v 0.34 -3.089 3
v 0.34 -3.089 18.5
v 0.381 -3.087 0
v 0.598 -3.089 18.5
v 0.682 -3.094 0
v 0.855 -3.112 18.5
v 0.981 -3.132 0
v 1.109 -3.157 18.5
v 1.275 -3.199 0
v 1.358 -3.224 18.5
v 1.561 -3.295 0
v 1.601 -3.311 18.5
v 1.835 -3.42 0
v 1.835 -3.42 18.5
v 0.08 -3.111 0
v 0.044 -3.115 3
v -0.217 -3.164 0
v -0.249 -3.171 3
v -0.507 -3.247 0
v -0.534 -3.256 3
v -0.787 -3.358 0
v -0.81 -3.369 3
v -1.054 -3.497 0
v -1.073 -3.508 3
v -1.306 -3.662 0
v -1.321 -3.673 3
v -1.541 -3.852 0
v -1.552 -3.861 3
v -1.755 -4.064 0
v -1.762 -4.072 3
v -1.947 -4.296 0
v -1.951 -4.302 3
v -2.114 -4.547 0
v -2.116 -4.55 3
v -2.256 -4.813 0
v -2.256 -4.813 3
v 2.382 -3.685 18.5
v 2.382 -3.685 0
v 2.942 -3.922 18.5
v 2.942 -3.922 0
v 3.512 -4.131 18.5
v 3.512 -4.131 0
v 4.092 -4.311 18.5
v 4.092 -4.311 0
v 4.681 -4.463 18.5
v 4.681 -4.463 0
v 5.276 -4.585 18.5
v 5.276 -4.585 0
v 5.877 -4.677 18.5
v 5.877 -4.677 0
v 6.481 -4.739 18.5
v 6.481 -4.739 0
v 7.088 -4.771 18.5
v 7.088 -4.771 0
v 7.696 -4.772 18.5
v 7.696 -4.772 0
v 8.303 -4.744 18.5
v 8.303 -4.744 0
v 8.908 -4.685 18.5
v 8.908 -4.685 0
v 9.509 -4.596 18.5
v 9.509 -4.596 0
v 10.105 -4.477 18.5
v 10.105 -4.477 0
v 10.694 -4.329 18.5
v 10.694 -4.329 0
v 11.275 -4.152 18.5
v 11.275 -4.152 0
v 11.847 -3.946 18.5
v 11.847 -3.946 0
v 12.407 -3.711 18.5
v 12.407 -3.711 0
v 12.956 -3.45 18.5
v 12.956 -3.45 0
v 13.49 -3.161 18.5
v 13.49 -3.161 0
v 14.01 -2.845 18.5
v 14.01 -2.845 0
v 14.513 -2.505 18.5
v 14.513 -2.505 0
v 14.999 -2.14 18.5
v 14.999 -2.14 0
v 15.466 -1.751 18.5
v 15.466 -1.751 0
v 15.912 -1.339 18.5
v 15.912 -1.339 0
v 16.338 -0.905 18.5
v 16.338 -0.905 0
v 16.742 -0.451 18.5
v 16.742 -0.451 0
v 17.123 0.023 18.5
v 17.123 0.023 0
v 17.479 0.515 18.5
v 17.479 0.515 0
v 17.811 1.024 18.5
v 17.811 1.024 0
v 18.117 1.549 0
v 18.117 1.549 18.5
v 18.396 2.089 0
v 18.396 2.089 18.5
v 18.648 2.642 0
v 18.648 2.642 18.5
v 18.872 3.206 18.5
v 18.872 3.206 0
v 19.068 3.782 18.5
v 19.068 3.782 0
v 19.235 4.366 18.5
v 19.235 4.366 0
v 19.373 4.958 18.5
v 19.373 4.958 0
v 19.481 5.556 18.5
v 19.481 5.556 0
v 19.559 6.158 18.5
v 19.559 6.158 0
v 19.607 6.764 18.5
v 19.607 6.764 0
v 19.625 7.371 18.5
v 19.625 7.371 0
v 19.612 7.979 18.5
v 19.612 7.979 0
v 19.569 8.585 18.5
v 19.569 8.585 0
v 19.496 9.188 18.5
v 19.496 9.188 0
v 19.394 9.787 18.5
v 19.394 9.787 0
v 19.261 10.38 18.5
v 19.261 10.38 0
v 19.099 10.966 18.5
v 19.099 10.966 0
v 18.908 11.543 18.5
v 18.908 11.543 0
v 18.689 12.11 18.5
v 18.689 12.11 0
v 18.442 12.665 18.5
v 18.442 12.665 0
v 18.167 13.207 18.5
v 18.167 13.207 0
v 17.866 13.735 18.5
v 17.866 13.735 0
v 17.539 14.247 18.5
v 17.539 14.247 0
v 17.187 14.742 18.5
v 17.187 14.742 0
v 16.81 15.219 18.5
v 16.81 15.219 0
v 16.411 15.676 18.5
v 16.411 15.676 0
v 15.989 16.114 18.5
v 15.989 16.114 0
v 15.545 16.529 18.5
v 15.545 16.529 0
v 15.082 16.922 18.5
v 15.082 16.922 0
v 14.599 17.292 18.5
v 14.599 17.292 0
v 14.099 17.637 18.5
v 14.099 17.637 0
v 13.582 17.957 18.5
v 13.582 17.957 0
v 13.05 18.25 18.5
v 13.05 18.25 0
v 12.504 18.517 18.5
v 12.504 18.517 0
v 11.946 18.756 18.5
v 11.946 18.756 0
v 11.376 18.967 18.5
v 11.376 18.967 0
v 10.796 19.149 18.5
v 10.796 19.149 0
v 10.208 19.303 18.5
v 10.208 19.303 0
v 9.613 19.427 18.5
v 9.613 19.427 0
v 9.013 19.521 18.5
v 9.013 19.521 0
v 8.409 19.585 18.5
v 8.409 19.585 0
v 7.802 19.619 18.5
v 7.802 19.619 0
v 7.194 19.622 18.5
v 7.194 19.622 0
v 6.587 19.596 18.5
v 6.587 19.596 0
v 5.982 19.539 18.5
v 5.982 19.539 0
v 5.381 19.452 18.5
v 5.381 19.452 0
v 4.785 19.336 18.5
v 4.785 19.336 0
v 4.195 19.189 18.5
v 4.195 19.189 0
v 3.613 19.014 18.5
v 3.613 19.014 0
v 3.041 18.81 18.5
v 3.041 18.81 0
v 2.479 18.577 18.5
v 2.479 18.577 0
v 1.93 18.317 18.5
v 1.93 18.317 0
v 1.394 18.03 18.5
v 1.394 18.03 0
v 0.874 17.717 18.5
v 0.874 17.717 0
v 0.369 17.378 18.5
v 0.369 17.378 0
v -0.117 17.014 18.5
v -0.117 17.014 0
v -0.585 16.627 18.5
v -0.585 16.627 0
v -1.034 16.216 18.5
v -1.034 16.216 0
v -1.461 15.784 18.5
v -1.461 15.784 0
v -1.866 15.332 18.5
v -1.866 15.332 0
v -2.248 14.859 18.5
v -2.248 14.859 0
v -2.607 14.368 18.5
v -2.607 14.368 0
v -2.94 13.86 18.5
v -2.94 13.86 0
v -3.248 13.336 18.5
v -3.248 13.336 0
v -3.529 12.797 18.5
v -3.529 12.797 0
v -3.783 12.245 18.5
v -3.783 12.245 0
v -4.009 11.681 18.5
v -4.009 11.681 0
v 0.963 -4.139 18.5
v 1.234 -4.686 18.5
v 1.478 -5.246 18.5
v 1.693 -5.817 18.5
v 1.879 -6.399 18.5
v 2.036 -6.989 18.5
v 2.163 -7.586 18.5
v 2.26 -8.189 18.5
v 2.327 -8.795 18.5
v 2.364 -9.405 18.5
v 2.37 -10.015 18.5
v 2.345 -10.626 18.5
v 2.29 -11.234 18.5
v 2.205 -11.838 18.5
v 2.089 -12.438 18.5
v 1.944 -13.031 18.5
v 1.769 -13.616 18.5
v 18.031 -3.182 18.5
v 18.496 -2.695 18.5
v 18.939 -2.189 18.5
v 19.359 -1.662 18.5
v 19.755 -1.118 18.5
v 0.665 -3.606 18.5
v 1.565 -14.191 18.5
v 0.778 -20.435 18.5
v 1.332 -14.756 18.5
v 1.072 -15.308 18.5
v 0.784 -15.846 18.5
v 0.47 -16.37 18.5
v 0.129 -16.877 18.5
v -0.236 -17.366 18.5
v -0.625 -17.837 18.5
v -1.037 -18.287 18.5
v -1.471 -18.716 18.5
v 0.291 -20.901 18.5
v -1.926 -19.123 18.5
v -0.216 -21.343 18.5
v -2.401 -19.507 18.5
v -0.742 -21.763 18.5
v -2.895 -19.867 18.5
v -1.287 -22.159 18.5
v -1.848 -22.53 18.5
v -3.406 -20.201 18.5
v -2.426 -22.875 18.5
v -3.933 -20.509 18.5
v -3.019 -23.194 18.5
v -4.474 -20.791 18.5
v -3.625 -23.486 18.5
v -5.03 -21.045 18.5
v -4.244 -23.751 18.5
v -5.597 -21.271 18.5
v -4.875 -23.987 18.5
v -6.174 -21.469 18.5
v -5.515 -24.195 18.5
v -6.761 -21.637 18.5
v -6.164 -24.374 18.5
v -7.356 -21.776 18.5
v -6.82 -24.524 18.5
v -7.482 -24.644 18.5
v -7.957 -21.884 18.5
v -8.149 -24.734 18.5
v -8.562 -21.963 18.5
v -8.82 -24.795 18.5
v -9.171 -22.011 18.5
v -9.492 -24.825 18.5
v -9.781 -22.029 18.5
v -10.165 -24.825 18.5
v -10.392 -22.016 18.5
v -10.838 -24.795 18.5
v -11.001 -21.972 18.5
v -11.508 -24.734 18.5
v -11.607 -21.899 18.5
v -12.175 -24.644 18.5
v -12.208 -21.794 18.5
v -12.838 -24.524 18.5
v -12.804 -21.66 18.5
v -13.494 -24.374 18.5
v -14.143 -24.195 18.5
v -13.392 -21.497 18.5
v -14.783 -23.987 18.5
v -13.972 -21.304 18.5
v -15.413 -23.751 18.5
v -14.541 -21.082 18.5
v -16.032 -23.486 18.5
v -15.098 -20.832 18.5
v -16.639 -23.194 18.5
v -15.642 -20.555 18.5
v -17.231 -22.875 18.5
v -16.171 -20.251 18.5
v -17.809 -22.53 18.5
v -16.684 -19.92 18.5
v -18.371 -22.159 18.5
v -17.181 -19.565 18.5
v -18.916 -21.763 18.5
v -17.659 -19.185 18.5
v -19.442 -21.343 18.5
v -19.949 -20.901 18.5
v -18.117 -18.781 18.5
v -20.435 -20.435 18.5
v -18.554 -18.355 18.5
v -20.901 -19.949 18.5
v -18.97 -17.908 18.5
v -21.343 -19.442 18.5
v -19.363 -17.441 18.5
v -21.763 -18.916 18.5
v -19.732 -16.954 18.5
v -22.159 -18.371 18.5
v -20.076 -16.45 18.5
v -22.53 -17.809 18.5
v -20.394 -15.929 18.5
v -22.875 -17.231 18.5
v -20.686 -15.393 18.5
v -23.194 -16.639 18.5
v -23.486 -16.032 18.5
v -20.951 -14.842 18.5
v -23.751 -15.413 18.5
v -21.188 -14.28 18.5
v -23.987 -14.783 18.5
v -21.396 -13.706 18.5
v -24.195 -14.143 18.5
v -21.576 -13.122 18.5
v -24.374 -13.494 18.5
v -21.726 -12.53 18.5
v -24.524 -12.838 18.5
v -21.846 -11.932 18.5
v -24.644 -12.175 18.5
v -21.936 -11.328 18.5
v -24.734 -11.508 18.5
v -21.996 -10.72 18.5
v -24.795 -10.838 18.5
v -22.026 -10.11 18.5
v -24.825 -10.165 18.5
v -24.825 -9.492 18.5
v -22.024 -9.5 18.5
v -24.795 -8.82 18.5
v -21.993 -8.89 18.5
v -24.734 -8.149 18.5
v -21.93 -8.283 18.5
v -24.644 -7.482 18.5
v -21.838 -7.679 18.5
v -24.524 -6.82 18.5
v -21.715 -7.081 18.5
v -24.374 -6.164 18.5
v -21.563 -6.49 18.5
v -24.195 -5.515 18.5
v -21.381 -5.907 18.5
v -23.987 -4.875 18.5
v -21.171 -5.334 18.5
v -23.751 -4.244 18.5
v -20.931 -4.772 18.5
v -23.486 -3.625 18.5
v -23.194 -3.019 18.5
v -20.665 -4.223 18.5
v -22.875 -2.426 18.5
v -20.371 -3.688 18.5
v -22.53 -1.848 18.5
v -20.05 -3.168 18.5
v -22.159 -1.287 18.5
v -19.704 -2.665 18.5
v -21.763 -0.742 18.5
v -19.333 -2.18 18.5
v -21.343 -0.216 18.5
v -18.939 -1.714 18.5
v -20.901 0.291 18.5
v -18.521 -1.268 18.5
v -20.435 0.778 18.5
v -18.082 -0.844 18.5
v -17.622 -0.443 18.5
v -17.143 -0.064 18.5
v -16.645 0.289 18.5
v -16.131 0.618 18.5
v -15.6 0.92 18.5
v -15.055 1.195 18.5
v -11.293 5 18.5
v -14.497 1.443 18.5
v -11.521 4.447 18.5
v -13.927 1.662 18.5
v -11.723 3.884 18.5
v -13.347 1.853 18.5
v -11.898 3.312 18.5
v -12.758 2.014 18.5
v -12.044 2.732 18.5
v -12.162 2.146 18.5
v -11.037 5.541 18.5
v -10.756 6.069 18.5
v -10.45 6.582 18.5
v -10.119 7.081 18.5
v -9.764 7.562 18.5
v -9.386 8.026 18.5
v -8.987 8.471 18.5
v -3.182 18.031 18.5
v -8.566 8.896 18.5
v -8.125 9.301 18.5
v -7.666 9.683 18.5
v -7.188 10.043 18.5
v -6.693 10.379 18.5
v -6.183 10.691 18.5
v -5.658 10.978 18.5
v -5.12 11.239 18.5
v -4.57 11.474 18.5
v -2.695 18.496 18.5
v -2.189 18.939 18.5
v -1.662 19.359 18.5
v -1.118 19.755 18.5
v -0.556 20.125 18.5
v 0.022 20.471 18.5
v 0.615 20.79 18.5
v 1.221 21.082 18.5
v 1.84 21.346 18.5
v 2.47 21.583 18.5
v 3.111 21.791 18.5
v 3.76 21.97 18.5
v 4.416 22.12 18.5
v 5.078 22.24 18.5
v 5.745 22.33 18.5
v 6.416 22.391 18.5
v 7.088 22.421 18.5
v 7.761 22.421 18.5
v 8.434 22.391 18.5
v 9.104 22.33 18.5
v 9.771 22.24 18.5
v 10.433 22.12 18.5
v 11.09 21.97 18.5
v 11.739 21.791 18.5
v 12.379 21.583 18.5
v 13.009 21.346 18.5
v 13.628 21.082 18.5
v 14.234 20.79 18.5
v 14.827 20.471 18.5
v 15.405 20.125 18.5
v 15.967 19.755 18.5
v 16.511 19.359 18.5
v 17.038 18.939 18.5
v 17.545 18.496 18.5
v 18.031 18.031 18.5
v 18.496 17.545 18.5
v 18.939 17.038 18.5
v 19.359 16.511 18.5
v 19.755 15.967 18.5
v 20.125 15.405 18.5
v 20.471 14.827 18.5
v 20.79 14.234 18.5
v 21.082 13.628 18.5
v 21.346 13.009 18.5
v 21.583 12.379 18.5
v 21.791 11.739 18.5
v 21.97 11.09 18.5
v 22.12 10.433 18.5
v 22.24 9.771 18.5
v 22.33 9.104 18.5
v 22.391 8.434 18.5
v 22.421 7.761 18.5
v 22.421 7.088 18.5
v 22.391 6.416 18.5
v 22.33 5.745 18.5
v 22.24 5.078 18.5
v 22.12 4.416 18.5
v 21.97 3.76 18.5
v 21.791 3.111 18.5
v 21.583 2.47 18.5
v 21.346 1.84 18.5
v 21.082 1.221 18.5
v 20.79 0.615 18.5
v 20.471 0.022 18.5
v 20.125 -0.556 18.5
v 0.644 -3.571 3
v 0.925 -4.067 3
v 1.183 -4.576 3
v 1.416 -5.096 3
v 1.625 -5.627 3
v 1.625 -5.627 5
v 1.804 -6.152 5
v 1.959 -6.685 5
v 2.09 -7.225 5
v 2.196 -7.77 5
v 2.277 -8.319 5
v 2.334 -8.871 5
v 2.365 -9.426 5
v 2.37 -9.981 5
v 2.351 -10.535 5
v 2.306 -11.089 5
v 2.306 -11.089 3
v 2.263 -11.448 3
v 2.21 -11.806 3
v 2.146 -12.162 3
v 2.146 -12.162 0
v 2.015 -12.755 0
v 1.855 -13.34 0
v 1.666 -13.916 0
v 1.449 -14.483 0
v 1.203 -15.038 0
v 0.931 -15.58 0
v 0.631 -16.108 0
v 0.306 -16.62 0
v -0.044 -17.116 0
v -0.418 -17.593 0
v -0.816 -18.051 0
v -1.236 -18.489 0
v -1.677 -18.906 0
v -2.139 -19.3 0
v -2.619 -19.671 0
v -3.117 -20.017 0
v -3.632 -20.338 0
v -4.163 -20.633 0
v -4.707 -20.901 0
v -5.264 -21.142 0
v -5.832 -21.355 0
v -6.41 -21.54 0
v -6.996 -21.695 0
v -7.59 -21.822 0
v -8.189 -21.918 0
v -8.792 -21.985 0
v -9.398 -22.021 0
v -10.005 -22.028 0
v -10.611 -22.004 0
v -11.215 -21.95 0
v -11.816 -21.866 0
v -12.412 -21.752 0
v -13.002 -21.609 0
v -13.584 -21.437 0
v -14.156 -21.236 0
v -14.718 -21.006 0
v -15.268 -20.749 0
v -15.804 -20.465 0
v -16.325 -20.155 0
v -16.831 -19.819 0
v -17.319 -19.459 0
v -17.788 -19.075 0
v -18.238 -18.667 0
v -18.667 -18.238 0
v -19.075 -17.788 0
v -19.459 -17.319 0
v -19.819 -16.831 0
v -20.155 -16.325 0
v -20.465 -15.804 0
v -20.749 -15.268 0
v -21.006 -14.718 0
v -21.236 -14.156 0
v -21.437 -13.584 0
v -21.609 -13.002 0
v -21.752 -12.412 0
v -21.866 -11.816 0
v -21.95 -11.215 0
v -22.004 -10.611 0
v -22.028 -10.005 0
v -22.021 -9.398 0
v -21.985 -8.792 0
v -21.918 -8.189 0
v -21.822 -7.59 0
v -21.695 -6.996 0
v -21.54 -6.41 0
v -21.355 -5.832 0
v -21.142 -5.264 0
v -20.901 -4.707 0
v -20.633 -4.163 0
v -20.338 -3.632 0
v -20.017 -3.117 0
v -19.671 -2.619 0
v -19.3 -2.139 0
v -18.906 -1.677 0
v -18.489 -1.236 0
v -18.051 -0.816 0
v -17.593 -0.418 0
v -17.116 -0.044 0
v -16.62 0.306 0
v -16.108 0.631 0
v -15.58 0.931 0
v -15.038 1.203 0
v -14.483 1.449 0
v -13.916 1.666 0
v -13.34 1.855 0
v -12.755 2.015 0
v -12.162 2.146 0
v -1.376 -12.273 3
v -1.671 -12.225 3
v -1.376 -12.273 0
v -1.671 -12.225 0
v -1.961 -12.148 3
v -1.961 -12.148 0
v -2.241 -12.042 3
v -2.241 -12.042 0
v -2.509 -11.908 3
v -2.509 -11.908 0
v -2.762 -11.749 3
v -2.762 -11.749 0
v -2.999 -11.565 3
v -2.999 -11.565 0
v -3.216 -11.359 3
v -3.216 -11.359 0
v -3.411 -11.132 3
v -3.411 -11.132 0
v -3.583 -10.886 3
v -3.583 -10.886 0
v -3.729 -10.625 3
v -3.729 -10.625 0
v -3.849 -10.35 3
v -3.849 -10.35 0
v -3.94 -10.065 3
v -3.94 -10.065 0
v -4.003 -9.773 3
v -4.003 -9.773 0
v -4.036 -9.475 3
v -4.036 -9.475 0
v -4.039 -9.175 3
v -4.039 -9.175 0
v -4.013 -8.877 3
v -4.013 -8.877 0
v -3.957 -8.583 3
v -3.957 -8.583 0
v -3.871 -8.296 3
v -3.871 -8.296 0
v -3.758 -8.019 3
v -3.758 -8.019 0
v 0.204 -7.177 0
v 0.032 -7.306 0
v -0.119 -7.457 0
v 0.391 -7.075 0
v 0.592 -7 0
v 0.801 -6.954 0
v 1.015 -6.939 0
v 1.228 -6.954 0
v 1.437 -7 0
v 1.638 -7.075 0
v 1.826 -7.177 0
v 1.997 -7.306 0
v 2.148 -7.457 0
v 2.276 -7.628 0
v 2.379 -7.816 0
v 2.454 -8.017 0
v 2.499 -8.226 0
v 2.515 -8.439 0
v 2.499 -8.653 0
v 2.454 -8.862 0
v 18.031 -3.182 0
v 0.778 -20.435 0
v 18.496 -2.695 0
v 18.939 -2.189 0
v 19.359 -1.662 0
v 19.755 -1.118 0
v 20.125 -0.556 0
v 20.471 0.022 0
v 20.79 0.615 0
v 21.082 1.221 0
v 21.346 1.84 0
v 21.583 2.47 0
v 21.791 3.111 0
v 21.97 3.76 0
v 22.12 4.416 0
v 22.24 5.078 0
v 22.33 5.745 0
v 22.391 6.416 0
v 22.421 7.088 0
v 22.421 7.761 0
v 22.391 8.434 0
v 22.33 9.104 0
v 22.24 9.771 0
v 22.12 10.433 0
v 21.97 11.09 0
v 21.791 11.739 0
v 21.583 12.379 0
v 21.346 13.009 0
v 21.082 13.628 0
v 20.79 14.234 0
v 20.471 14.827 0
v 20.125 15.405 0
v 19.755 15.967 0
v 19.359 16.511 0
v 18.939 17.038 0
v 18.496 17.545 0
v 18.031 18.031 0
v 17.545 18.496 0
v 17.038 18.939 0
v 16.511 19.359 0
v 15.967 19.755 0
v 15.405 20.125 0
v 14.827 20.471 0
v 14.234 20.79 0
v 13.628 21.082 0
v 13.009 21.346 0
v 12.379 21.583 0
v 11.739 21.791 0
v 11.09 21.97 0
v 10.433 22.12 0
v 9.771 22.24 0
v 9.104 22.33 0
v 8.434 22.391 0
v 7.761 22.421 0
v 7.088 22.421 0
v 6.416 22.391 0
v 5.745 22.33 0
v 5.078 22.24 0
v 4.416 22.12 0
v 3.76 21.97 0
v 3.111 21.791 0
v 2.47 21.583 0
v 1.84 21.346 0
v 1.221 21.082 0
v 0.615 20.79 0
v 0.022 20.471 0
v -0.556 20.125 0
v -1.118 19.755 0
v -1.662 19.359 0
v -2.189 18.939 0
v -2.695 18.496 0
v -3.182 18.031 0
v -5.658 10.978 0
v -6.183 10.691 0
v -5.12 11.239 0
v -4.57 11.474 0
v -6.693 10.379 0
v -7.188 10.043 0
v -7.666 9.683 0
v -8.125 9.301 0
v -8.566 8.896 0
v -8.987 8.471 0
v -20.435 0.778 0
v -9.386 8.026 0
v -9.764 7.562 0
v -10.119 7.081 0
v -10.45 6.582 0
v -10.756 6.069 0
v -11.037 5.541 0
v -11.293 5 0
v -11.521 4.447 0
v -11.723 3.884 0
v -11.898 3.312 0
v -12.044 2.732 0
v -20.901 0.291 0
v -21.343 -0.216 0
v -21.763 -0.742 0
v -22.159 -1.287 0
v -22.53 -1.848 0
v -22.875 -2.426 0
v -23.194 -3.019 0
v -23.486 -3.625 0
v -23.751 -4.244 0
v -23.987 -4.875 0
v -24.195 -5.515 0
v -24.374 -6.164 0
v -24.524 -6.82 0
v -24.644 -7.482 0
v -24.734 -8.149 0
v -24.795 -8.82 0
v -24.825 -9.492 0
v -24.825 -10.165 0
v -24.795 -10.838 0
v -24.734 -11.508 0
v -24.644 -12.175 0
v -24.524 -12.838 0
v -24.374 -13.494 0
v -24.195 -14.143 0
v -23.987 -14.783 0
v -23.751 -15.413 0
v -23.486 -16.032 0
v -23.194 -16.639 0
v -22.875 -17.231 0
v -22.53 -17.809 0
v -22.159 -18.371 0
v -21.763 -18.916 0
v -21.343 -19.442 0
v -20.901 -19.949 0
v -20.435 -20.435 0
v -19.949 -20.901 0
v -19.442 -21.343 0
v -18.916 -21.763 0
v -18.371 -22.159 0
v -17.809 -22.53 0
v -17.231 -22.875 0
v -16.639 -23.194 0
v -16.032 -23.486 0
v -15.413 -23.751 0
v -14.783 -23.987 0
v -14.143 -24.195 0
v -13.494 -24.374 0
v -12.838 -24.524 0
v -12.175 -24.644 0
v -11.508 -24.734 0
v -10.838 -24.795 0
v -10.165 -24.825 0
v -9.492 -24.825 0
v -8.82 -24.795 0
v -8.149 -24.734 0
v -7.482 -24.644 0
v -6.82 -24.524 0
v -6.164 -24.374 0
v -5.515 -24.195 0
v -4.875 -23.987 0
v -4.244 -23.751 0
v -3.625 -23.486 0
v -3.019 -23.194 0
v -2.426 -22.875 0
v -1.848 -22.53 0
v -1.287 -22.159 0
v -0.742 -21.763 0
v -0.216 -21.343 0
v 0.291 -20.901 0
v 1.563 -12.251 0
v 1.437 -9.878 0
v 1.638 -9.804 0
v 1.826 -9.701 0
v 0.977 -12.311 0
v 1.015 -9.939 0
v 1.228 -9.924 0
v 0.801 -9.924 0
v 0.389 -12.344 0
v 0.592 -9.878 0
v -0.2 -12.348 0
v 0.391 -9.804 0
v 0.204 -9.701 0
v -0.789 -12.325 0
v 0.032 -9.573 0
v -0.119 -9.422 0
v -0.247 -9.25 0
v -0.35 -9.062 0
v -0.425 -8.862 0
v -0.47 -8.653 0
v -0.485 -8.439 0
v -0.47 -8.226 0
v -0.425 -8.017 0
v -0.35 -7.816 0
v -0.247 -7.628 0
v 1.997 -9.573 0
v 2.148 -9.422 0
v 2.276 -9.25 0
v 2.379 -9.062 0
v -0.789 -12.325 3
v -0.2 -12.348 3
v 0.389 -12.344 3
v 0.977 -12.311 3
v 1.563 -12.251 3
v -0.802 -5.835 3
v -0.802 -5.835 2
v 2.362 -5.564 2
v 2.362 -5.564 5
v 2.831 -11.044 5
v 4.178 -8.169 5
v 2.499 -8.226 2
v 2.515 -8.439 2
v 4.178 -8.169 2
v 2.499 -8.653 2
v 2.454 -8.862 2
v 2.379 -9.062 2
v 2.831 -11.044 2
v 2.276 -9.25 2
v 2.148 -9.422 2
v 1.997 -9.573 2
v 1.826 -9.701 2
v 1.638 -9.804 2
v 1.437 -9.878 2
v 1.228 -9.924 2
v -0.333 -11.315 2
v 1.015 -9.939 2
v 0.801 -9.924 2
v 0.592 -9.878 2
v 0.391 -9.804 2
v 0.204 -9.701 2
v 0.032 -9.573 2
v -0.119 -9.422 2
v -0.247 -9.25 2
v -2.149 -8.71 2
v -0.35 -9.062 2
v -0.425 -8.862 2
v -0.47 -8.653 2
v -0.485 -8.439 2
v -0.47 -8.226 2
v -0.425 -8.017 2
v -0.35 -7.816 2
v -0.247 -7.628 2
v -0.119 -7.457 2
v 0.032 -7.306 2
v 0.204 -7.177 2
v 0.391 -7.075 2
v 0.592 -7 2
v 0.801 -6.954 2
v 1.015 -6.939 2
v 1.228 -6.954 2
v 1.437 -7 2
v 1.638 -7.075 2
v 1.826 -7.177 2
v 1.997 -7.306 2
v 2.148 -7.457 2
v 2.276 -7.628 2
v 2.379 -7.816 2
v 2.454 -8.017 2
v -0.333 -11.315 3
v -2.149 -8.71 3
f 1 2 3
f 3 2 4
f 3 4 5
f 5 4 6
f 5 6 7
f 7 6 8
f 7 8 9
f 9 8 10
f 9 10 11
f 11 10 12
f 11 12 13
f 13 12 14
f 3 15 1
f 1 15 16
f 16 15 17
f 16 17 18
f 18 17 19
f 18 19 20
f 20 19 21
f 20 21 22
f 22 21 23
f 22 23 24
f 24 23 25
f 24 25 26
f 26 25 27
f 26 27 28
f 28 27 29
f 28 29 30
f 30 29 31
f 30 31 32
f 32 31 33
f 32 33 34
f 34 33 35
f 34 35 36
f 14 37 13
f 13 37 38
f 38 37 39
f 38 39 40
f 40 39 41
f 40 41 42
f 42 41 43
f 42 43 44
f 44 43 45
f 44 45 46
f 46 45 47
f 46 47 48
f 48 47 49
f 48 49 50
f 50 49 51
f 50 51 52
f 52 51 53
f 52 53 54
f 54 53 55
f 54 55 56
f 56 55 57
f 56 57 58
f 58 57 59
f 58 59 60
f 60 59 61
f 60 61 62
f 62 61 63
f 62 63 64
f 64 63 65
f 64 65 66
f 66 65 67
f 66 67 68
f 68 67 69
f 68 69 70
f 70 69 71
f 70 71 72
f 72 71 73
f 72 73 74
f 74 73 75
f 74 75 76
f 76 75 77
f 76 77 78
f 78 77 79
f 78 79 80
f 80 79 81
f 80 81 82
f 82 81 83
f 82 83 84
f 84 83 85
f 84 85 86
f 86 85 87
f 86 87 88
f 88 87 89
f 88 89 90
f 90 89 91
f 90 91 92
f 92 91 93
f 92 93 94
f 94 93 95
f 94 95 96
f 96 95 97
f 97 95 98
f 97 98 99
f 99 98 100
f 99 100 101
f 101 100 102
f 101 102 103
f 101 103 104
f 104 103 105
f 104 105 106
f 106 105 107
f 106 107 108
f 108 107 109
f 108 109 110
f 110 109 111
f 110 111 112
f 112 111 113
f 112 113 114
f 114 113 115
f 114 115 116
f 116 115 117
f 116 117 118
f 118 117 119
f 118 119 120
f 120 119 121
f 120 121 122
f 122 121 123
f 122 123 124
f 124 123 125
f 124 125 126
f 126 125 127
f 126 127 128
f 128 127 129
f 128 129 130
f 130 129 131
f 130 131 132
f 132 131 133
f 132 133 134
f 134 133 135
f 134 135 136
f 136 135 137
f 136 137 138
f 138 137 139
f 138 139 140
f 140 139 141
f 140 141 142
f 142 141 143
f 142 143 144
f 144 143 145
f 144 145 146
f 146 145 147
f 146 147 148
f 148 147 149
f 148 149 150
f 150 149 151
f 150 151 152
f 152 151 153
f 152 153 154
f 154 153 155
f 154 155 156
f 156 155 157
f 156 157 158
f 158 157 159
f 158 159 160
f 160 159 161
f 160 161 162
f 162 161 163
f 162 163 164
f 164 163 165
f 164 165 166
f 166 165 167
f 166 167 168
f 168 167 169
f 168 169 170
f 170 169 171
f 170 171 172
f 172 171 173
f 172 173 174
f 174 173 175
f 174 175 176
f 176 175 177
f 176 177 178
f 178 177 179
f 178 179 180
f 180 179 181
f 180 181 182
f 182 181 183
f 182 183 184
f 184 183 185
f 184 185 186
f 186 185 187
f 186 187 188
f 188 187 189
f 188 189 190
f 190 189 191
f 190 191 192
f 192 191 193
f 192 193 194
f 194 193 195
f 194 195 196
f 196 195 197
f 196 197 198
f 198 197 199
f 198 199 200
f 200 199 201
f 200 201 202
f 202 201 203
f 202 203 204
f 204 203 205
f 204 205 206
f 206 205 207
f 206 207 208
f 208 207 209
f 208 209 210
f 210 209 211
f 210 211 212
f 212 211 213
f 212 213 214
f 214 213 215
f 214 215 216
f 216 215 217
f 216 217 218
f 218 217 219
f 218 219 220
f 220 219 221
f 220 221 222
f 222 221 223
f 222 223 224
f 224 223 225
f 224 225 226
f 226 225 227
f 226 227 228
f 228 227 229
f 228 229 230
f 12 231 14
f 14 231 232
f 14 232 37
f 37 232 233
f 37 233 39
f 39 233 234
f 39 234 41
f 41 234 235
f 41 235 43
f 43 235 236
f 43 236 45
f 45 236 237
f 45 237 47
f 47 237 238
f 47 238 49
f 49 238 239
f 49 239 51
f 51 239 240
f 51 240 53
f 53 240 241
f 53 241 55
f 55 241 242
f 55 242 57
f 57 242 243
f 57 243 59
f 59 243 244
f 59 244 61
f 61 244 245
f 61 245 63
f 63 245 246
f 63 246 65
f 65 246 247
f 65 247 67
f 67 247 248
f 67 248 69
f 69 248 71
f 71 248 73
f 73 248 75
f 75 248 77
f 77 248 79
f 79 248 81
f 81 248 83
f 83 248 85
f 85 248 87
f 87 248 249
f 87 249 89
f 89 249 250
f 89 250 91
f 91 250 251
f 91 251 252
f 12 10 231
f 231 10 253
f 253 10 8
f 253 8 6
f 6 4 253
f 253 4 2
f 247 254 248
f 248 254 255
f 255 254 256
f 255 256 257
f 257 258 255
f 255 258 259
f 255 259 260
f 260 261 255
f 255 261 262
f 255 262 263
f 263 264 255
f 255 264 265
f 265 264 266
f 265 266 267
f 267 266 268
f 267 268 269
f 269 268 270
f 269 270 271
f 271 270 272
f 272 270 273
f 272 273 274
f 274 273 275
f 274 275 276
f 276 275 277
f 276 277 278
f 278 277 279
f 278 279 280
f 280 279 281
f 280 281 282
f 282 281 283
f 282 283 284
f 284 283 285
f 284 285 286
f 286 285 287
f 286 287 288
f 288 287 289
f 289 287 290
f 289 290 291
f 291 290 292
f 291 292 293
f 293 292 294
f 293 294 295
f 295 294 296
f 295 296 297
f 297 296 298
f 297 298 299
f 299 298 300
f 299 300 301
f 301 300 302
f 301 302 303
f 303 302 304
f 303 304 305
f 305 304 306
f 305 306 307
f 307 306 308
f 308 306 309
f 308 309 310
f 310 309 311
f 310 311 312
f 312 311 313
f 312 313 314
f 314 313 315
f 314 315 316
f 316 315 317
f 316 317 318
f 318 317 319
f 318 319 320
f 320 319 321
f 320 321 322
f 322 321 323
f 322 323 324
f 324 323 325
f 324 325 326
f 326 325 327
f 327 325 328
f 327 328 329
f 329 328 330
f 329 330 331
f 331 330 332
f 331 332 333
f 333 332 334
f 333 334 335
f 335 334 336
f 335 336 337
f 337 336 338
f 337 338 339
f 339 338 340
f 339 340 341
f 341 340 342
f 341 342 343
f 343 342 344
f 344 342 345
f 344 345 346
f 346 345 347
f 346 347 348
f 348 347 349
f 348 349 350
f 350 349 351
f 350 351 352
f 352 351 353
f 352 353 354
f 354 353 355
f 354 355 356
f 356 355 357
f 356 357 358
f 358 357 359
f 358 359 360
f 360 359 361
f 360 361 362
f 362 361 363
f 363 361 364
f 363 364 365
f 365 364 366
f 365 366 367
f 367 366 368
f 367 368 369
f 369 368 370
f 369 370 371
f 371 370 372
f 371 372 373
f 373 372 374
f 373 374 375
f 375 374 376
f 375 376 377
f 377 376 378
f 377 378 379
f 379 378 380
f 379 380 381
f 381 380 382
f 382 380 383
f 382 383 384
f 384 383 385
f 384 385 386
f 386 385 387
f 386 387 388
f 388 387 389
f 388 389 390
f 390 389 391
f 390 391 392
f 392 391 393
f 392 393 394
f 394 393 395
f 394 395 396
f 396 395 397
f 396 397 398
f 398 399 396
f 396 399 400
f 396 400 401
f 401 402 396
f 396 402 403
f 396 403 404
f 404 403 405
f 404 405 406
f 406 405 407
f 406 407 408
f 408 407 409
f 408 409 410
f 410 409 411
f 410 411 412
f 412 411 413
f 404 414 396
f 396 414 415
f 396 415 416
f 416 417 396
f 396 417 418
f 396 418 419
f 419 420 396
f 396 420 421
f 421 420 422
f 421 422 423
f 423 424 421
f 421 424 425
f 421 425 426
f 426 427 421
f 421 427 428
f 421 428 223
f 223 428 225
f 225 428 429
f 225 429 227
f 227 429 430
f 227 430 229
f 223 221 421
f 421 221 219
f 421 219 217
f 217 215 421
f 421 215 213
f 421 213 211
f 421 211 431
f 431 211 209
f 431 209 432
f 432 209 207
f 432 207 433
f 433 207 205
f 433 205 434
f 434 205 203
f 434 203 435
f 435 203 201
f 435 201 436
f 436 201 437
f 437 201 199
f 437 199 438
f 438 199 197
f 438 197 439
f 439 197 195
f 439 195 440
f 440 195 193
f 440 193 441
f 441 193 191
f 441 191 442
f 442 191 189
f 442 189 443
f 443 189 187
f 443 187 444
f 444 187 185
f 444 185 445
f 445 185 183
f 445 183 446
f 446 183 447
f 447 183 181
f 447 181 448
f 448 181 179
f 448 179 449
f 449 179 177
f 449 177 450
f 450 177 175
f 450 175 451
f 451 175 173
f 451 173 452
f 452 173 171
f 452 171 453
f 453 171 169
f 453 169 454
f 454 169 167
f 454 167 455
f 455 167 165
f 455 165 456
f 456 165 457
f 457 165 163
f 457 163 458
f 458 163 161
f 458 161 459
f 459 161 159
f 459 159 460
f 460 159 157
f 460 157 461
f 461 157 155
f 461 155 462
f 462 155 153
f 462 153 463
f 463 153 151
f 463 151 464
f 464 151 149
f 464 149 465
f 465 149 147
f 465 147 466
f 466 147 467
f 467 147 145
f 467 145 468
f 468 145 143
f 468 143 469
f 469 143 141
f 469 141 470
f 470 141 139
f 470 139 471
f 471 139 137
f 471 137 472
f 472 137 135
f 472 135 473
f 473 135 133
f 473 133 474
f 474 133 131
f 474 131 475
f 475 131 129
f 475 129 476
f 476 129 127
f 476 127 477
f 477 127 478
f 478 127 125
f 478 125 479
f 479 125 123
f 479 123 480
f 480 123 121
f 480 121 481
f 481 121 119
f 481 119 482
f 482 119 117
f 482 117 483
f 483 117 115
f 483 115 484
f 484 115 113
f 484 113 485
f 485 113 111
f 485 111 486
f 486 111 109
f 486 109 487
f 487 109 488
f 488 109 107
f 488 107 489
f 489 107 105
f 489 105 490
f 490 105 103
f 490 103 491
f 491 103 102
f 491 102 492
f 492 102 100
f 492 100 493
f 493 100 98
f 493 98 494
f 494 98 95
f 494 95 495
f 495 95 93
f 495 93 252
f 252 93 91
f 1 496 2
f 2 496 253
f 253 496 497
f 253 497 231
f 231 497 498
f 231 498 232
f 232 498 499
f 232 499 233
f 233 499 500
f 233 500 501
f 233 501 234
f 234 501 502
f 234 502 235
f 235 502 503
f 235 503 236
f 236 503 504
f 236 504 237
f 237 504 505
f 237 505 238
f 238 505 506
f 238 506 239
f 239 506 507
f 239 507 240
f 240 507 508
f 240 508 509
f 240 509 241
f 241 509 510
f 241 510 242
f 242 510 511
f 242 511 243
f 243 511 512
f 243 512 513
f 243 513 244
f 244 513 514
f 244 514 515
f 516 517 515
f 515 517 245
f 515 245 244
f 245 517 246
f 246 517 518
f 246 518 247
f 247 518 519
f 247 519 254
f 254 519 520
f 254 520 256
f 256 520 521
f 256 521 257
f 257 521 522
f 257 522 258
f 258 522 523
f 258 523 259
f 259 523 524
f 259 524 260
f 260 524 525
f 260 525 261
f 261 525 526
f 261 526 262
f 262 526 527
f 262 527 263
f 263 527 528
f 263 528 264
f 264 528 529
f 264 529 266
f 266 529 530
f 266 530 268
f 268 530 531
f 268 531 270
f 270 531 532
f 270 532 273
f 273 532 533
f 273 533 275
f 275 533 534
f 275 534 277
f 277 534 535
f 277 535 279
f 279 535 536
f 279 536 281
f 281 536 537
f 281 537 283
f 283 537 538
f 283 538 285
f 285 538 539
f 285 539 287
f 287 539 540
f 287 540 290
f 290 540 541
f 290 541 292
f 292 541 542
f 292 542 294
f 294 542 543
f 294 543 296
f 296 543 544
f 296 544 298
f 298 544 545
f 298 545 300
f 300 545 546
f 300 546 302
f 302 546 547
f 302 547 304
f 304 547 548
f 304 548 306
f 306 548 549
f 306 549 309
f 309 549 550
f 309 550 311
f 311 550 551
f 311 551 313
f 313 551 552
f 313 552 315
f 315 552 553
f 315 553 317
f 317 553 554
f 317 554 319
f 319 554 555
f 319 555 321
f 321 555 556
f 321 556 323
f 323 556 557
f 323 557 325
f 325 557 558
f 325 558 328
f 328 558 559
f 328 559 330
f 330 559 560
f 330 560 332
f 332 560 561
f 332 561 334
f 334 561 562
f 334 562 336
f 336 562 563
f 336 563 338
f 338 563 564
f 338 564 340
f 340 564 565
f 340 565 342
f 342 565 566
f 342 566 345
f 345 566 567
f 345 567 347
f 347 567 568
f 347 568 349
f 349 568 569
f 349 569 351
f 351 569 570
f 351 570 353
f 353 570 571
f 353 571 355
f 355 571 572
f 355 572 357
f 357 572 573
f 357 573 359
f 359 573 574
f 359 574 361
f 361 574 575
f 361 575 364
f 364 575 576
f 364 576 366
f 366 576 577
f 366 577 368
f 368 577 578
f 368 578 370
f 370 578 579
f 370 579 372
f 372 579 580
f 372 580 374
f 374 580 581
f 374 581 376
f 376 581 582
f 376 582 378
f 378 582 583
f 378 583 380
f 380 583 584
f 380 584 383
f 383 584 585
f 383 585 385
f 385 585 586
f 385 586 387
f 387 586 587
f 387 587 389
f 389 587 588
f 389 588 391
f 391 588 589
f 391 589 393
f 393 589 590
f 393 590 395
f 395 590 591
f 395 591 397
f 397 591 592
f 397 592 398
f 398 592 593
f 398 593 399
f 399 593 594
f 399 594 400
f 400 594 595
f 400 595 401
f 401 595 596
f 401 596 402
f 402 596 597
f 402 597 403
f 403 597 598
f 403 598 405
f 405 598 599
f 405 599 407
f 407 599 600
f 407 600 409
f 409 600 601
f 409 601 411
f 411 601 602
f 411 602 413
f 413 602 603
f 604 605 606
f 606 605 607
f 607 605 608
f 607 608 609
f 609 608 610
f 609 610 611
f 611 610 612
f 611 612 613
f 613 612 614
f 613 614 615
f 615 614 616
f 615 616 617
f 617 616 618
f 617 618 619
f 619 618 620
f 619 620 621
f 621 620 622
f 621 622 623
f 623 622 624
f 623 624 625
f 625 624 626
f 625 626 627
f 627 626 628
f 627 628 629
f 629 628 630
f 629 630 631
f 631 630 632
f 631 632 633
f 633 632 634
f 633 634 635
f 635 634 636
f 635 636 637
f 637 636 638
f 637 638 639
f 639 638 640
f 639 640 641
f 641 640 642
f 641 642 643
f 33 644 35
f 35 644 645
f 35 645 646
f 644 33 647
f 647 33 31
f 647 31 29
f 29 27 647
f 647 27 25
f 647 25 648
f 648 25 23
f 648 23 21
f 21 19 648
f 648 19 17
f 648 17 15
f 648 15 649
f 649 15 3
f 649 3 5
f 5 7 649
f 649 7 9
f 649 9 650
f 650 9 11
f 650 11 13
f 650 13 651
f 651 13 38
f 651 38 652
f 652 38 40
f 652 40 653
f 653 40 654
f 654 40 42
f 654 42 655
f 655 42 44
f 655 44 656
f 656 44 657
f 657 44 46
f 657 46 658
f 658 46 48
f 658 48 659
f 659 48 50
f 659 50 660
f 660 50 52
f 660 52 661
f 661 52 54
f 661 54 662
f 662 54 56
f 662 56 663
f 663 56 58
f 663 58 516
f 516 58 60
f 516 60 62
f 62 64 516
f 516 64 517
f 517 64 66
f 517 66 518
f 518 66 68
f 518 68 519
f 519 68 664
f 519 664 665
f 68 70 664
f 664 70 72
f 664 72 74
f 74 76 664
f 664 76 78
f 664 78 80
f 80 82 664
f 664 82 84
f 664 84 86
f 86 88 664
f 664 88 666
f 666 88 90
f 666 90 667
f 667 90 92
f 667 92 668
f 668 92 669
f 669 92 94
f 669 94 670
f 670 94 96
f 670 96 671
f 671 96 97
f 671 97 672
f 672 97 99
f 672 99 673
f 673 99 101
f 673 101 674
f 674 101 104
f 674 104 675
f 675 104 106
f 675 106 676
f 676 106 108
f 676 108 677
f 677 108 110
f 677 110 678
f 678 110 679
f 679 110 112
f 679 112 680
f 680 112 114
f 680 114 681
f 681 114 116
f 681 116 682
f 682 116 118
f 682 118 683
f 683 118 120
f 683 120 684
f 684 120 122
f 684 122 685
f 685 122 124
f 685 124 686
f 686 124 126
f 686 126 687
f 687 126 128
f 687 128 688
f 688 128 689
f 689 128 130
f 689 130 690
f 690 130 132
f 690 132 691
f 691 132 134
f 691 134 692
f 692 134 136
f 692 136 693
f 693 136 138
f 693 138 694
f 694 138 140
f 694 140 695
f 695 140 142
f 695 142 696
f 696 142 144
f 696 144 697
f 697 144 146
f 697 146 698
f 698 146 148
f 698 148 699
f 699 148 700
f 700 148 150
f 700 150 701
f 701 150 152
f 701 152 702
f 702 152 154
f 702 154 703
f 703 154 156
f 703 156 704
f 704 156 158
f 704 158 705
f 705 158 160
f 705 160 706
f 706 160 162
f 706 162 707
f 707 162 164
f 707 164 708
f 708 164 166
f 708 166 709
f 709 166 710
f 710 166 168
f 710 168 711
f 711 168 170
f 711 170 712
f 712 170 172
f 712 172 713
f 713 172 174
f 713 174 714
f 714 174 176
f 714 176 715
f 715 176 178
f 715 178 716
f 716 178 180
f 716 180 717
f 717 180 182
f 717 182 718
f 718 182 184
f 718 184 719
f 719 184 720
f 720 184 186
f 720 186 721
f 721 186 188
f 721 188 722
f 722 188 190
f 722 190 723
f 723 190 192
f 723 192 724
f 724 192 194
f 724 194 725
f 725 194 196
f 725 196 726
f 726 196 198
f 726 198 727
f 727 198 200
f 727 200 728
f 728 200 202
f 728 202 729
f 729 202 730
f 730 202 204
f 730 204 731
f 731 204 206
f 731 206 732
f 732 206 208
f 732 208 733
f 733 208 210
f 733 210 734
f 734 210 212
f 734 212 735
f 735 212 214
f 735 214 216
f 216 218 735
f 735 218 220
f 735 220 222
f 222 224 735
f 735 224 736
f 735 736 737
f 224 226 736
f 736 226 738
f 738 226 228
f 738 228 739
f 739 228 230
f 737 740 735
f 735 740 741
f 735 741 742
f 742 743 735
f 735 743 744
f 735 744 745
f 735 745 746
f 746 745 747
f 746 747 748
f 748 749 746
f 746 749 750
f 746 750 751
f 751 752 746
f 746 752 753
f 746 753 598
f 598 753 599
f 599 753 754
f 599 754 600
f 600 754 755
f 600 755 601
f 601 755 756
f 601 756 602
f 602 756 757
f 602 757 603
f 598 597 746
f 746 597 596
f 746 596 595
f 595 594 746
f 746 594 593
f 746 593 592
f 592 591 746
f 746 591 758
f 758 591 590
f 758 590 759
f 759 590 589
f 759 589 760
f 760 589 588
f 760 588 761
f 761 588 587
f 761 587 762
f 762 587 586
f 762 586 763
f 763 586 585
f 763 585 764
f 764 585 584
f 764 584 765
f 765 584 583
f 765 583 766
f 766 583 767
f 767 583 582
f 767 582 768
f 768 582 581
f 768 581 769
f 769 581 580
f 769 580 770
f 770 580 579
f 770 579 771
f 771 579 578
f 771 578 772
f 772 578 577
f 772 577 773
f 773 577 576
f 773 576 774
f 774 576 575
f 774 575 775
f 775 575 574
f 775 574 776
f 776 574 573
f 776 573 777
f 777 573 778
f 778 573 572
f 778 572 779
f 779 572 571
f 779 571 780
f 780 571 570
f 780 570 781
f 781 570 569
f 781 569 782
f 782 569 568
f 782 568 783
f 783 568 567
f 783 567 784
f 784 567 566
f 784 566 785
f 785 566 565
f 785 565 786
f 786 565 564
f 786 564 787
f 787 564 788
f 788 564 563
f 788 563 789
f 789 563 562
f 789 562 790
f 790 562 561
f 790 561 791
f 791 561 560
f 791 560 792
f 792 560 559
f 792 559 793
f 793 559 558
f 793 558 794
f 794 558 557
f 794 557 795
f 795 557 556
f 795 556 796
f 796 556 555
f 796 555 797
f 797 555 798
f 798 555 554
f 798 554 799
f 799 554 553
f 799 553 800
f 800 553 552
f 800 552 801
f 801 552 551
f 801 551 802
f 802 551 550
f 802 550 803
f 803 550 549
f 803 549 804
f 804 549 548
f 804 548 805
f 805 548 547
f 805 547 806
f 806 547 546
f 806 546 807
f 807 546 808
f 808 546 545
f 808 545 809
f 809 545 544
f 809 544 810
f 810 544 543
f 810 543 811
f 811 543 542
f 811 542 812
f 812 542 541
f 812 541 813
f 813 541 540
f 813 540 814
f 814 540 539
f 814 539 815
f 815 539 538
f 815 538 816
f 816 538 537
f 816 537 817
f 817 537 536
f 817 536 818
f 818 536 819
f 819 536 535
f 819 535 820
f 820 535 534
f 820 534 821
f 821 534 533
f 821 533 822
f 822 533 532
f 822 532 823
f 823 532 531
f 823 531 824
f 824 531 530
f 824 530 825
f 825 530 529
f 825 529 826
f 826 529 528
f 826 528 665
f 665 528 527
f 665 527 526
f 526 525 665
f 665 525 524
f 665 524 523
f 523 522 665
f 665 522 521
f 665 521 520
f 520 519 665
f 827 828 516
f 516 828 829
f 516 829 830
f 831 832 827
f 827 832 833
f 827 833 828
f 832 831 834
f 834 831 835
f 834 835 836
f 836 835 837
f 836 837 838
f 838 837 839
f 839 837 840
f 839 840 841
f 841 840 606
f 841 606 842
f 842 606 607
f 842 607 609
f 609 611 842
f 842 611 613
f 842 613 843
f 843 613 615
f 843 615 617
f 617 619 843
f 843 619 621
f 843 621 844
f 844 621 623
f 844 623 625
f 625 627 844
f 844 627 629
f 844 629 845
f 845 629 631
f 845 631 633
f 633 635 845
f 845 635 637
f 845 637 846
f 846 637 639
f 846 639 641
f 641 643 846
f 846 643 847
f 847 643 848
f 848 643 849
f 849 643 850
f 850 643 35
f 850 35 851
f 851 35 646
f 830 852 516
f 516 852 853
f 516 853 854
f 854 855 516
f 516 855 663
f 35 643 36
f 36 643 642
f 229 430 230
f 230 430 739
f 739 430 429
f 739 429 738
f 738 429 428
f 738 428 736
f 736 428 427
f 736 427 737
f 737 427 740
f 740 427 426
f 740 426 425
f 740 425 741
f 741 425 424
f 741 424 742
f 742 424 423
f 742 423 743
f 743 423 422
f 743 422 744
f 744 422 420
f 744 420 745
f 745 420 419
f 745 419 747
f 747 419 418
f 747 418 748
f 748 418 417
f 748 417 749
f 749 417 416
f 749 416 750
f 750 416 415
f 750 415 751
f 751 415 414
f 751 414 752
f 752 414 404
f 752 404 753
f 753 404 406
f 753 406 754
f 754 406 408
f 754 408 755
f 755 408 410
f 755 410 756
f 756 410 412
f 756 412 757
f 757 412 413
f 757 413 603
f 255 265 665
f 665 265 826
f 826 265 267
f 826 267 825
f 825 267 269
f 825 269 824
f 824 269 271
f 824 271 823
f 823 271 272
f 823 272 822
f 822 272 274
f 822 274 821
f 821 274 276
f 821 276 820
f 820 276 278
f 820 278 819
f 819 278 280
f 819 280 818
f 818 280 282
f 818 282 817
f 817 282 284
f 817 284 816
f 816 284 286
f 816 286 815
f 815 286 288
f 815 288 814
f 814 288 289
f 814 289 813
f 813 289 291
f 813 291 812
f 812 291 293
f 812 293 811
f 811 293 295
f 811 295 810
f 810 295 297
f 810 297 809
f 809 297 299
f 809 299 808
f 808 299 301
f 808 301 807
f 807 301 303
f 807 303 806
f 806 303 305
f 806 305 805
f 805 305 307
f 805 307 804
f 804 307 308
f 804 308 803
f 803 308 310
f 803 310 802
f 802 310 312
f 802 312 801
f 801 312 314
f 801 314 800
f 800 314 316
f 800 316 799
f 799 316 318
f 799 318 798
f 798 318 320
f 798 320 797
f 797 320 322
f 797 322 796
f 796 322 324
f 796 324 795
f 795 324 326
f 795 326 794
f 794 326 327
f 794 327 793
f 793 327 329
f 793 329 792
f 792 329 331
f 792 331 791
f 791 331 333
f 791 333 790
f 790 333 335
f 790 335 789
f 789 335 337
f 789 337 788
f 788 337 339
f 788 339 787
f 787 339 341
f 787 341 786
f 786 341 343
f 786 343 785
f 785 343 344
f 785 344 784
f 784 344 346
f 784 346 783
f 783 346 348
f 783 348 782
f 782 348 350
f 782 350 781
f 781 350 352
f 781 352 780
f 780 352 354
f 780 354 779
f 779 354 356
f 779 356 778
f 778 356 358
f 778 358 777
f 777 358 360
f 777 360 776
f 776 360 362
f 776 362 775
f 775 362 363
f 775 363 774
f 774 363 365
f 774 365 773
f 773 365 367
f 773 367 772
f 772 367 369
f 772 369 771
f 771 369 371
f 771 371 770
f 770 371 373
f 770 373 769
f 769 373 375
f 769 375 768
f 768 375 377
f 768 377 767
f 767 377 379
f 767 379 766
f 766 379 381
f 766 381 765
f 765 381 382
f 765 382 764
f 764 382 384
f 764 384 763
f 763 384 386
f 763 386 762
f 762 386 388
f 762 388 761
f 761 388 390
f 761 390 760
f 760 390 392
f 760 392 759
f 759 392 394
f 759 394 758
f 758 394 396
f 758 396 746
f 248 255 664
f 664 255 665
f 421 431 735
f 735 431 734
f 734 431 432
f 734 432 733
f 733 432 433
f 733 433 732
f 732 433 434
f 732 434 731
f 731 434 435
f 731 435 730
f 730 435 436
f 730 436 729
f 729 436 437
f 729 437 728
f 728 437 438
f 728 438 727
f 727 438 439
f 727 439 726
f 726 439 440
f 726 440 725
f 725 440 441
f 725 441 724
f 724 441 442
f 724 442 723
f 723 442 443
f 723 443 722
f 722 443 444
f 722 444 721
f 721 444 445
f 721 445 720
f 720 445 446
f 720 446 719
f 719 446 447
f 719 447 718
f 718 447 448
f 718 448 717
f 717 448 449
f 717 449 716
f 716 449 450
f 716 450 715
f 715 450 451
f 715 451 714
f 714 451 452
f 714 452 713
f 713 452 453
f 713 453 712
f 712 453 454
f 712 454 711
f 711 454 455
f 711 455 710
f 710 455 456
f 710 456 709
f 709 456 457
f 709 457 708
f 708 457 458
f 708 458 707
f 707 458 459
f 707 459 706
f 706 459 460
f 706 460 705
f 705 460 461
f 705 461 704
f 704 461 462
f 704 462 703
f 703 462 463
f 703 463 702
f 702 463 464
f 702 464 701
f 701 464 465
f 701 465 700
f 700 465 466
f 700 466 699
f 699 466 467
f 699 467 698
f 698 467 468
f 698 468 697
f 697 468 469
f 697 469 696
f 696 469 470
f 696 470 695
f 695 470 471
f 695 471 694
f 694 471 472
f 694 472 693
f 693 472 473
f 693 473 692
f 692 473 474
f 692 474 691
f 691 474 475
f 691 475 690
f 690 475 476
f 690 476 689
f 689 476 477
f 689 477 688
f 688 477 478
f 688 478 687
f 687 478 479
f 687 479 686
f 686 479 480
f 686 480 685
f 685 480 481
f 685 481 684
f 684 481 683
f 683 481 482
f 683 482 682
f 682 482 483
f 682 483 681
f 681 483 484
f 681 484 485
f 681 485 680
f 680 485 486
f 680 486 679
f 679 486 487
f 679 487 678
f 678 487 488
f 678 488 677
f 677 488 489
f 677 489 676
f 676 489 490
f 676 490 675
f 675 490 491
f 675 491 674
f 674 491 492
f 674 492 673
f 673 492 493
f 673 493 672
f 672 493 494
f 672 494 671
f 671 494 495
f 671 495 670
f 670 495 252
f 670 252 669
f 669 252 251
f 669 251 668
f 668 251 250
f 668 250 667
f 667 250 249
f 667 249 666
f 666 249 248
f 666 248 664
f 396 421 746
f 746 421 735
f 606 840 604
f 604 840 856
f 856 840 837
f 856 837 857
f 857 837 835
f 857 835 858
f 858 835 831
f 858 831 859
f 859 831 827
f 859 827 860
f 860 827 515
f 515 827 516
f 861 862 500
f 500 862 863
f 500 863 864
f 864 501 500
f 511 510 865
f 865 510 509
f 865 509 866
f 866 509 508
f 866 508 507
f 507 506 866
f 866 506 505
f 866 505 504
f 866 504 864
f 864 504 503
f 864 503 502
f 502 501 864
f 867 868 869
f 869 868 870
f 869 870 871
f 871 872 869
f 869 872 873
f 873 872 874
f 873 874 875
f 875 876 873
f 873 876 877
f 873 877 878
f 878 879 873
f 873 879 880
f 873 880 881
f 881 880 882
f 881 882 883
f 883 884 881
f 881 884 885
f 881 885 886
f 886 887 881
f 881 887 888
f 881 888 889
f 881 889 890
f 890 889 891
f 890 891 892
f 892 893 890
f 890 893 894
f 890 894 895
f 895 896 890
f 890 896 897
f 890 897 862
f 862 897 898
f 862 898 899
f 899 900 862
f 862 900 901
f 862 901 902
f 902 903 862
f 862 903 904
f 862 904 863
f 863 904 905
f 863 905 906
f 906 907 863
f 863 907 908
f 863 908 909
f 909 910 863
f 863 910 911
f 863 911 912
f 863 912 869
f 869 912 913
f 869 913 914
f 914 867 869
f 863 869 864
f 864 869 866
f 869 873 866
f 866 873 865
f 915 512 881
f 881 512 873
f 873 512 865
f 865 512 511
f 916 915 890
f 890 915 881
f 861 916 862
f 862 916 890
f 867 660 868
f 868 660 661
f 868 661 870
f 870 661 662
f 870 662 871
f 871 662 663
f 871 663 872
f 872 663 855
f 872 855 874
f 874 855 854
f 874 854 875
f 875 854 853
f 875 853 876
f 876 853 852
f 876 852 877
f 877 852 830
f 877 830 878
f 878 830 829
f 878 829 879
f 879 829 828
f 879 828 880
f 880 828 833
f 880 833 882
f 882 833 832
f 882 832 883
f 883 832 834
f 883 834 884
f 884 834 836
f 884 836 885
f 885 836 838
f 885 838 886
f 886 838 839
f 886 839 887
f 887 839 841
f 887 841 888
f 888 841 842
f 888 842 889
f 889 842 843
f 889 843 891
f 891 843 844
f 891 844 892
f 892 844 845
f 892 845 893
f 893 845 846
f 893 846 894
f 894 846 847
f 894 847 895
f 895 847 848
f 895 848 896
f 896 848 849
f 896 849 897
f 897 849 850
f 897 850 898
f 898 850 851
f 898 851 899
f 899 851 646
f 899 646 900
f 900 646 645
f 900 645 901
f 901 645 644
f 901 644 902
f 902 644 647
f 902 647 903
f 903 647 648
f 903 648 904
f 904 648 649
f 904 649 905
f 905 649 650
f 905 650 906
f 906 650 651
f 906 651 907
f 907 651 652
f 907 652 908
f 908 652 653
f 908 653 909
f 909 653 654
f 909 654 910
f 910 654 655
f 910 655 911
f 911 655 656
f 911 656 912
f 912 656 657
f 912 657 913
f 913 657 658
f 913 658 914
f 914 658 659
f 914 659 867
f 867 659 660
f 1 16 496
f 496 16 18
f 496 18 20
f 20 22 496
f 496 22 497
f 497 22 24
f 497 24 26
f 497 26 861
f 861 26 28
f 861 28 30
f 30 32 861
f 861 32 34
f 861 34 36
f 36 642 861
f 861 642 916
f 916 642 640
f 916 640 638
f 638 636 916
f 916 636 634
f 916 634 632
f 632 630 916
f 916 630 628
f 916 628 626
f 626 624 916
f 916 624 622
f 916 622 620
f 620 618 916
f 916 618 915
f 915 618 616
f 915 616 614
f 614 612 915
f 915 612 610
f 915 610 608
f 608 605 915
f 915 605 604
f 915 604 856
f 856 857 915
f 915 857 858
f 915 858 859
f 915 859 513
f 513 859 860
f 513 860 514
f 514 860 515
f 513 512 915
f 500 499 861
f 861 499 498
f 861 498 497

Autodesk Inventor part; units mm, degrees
ref_plane "YZ Plane" through (0, 0, 0) normal (1, 0, 0) x (0, 1, 0)
ref_plane "XZ Plane" through (0, 0, 0) normal (0, 1, 0) x (-1, 0, 0)
ref_plane "XY Plane" through (0, 0, 0) normal (0, 0, 1) x (1, 0, 0)
sketch "Sketch1" plane through (0, 0, 0) normal (0, 0, 1) x (1, 0, 0)
  circle A0 centre (0, 0) radius 12.35
  circle A1 centre (7.4246, 7.4246) radius 12.2
  line L0 (-13.413, -13.413) -> (25.4094, 25.4094) construction
  line L1 (-10.6165, 0) -> (15.2552, 0) construction
  line L2 (7.4246, 7.4246) -> (15.8638, 6.41) construction
  line L3 (16.6649, 18.5138) -> (22.6753, 24.5242) construction
  circle A2 centre (15.8638, 6.41) radius 1.5
  line L4 (7.4246, 7.4246) -> (-1.0146, 8.4392) construction
  circle A3 centre (-1.0146, 8.4392) radius 1.5
  line L5 (0, 0) -> (-1.0146, 8.4392) construction
  line L6 (0, 0) -> (1.0146, -8.4392) construction
  circle A4 centre (1.0146, -8.4392) radius 1.5
  circle A5 centre (-9.8288, -9.8288) radius 12.2
  line L7 (-5.2409, -11.1828) -> (0, 0)
  point P0 (11.6813, -4.0087)
  point P1 (-0.7603, -1.6223)
  dimension "d0" = 24.7
  dimension "d1" = 24.4
  dimension "d2" = 0
  dimension "d3" = 45
  dimension "d4" = 0
  dimension "d5" = 10.5
  dimension "d20" = 8.5
  dimension "d21" = 3
  dimension "d22" = 3
  dimension "d23" = 3
  dimension "d24" = 24.4
  dimension "d25" = 24.4
  dimension "d26" = 4.5
extrude "Extrusion1" add sketch "Sketch1" along normal blind 3 contours A0 A5 A4 L7 A1 | A0 L7 A5 A4
sketch "Sketch3" plane through (0, 0, 3) normal (0, 0, 1) x (1, 0, 0)
  circle A0 centre (0, 0) radius 12.35
  circle A1 centre (7.4246, 7.4246) radius 12.2
  line L0 (-13.413, -13.413) -> (25.4094, 25.4094) construction
  line L1 (-10.6165, 0) -> (15.2552, 0) construction
  line L2 (7.4246, 7.4246) -> (15.8638, 6.41) construction
  line L3 (16.6649, 18.5138) -> (22.6753, 24.5242) construction
  circle A2 centre (15.8638, 6.41) radius 1.5
  line L4 (7.4246, 7.4246) -> (-1.0146, 8.4392) construction
  circle A3 centre (-1.0146, 8.4392) radius 1.5
  line L5 (0, 0) -> (-1.0146, 8.4392) construction
  line L6 (0, 0) -> (1.0146, -8.4392) construction
  circle A4 centre (1.0146, -8.4392) radius 1.5
  circle A5 centre (-9.8288, -9.8288) radius 12.2
  line L7 (-5.2409, -11.1828) -> (0, 0)
  point P0 (11.6813, -4.0087)
  point P1 (-0.7603, -1.6223)
  point P2 (-0.7743, -1.6522)
  point P3 (2.1356, -7.4425)
  point P4 (2.3507, -9.1211)
  point P5 (2.146, -12.1621)
  dimension "d32" = 24.7
  dimension "d33" = 24.4
  dimension "d34" = 0
  dimension "d35" = 45
  dimension "d36" = 0
  dimension "d37" = 10.5
  dimension "d38" = 8.5
  dimension "d39" = 3
  dimension "d40" = 3
  dimension "d41" = 3
  dimension "d42" = 24.4
  dimension "d43" = 24.4
  dimension "d44" = 4.5
extrude "Extrusion3" add sketch "Sketch3" along normal blind 15.5 contours A0 A5 A4 L7 A1 | A4 A5 picked at (2.3363, -8.2121)
sketch "Sketch4" plane through (0, 0, 3) normal (0, 0, 1) x (1, 0, 0)
  line L0 (-2.1493, -8.7099) -> (-0.8017, -5.8346)
  line L1 (-0.8017, -5.8346) -> (2.3621, -5.5639)
  line L2 (2.3621, -5.5639) -> (4.1785, -8.1686)
  line L3 (4.1785, -8.1686) -> (2.8309, -11.0439)
  line L4 (2.8309, -11.0439) -> (-0.3329, -11.3146)
  line L5 (-0.3329, -11.3146) -> (-2.1493, -8.7099)
  point P0 (0, 0)
  point P1 (1.0146, -8.4392)
  dimension "d49" = 5.5
extrude "Extrusion4" cut sketch "Sketch4" along normal blind 2 and the other way blind 1
sketch "Sketch5" plane through (0, 0, 18.5) normal (0, 0, 1) x (1, 0, 0)
  circle A0 centre (0, 0) radius 12.35
  circle A1 centre (7.4246, 7.4246) radius 12.2
  line L0 (-13.413, -13.413) -> (25.4094, 25.4094) construction
  line L1 (-10.6165, 0) -> (15.2552, 0) construction
  line L2 (7.4246, 7.4246) -> (15.8638, 6.41) construction
  line L3 (16.6649, 18.5138) -> (22.6753, 24.5242) construction
  circle A2 centre (15.8638, 6.41) radius 1.5
  line L4 (7.4246, 7.4246) -> (-1.0146, 8.4392) construction
  circle A3 centre (-1.0146, 8.4392) radius 1.5
  line L5 (0, 0) -> (-1.0146, 8.4392) construction
  line L6 (0, 0) -> (1.0146, -8.4392) construction
  circle A4 centre (1.0146, -8.4392) radius 1.5
  circle A5 centre (-9.8288, -9.8288) radius 12.2
  line L7 (-5.2409, -11.1828) -> (0, 0)
  line L8 (-31.042, -9.8288) -> (7.4246, 28.6378)
  line L9 (7.4246, 28.6378) -> (28.6378, 7.4246)
  line L10 (28.6378, 7.4246) -> (-9.8288, -31.042)
  line L11 (-9.8288, -31.042) -> (-31.042, -9.8288)
  circle A6 centre (-9.8288, -9.8288) radius 15
  circle A7 centre (7.4246, 7.4246) radius 15
  point P0 (11.6813, -4.0087)
  point P1 (-0.7603, -1.6223)
  point P2 (2.146, -12.1621)
  point P3 (-12.1621, 2.146)
  point P4 (-4.0087, 11.6813)
  point P5 (0.7778, -20.4354)
  point P6 (18.0312, -3.182)
  point P7 (-3.182, 18.0312)
  point P8 (-20.4354, 0.7778)
  dimension "d54" = 24.7
  dimension "d55" = 24.4
  dimension "d56" = 0
  dimension "d57" = 45
  dimension "d58" = 0
  dimension "d59" = 10.5
  dimension "d60" = 8.5
  dimension "d61" = 3
  dimension "d62" = 3
  dimension "d63" = 3
  dimension "d64" = 24.4
  dimension "d65" = 24.4
  dimension "d66" = 4.5
  dimension "d67" = 15
  dimension "d68" = 15
  dimension "d69" = 30
  dimension "d70" = 15
extrude "Extrusion5" add sketch "Sketch5" against normal blind 18.5 contours A0 A7 A1 | A0 A6 L8 A7 | A7 L10 A6 A0 | A0 A5 A6
fillet "Fillet1" radius 3 1 edges at (-5.2409, -11.1828, 1.5)
fillet "Fillet2" radius 3 1 edges at (-0.7603, -1.6223, 9.25)
properties part number "Hiolder_28"
